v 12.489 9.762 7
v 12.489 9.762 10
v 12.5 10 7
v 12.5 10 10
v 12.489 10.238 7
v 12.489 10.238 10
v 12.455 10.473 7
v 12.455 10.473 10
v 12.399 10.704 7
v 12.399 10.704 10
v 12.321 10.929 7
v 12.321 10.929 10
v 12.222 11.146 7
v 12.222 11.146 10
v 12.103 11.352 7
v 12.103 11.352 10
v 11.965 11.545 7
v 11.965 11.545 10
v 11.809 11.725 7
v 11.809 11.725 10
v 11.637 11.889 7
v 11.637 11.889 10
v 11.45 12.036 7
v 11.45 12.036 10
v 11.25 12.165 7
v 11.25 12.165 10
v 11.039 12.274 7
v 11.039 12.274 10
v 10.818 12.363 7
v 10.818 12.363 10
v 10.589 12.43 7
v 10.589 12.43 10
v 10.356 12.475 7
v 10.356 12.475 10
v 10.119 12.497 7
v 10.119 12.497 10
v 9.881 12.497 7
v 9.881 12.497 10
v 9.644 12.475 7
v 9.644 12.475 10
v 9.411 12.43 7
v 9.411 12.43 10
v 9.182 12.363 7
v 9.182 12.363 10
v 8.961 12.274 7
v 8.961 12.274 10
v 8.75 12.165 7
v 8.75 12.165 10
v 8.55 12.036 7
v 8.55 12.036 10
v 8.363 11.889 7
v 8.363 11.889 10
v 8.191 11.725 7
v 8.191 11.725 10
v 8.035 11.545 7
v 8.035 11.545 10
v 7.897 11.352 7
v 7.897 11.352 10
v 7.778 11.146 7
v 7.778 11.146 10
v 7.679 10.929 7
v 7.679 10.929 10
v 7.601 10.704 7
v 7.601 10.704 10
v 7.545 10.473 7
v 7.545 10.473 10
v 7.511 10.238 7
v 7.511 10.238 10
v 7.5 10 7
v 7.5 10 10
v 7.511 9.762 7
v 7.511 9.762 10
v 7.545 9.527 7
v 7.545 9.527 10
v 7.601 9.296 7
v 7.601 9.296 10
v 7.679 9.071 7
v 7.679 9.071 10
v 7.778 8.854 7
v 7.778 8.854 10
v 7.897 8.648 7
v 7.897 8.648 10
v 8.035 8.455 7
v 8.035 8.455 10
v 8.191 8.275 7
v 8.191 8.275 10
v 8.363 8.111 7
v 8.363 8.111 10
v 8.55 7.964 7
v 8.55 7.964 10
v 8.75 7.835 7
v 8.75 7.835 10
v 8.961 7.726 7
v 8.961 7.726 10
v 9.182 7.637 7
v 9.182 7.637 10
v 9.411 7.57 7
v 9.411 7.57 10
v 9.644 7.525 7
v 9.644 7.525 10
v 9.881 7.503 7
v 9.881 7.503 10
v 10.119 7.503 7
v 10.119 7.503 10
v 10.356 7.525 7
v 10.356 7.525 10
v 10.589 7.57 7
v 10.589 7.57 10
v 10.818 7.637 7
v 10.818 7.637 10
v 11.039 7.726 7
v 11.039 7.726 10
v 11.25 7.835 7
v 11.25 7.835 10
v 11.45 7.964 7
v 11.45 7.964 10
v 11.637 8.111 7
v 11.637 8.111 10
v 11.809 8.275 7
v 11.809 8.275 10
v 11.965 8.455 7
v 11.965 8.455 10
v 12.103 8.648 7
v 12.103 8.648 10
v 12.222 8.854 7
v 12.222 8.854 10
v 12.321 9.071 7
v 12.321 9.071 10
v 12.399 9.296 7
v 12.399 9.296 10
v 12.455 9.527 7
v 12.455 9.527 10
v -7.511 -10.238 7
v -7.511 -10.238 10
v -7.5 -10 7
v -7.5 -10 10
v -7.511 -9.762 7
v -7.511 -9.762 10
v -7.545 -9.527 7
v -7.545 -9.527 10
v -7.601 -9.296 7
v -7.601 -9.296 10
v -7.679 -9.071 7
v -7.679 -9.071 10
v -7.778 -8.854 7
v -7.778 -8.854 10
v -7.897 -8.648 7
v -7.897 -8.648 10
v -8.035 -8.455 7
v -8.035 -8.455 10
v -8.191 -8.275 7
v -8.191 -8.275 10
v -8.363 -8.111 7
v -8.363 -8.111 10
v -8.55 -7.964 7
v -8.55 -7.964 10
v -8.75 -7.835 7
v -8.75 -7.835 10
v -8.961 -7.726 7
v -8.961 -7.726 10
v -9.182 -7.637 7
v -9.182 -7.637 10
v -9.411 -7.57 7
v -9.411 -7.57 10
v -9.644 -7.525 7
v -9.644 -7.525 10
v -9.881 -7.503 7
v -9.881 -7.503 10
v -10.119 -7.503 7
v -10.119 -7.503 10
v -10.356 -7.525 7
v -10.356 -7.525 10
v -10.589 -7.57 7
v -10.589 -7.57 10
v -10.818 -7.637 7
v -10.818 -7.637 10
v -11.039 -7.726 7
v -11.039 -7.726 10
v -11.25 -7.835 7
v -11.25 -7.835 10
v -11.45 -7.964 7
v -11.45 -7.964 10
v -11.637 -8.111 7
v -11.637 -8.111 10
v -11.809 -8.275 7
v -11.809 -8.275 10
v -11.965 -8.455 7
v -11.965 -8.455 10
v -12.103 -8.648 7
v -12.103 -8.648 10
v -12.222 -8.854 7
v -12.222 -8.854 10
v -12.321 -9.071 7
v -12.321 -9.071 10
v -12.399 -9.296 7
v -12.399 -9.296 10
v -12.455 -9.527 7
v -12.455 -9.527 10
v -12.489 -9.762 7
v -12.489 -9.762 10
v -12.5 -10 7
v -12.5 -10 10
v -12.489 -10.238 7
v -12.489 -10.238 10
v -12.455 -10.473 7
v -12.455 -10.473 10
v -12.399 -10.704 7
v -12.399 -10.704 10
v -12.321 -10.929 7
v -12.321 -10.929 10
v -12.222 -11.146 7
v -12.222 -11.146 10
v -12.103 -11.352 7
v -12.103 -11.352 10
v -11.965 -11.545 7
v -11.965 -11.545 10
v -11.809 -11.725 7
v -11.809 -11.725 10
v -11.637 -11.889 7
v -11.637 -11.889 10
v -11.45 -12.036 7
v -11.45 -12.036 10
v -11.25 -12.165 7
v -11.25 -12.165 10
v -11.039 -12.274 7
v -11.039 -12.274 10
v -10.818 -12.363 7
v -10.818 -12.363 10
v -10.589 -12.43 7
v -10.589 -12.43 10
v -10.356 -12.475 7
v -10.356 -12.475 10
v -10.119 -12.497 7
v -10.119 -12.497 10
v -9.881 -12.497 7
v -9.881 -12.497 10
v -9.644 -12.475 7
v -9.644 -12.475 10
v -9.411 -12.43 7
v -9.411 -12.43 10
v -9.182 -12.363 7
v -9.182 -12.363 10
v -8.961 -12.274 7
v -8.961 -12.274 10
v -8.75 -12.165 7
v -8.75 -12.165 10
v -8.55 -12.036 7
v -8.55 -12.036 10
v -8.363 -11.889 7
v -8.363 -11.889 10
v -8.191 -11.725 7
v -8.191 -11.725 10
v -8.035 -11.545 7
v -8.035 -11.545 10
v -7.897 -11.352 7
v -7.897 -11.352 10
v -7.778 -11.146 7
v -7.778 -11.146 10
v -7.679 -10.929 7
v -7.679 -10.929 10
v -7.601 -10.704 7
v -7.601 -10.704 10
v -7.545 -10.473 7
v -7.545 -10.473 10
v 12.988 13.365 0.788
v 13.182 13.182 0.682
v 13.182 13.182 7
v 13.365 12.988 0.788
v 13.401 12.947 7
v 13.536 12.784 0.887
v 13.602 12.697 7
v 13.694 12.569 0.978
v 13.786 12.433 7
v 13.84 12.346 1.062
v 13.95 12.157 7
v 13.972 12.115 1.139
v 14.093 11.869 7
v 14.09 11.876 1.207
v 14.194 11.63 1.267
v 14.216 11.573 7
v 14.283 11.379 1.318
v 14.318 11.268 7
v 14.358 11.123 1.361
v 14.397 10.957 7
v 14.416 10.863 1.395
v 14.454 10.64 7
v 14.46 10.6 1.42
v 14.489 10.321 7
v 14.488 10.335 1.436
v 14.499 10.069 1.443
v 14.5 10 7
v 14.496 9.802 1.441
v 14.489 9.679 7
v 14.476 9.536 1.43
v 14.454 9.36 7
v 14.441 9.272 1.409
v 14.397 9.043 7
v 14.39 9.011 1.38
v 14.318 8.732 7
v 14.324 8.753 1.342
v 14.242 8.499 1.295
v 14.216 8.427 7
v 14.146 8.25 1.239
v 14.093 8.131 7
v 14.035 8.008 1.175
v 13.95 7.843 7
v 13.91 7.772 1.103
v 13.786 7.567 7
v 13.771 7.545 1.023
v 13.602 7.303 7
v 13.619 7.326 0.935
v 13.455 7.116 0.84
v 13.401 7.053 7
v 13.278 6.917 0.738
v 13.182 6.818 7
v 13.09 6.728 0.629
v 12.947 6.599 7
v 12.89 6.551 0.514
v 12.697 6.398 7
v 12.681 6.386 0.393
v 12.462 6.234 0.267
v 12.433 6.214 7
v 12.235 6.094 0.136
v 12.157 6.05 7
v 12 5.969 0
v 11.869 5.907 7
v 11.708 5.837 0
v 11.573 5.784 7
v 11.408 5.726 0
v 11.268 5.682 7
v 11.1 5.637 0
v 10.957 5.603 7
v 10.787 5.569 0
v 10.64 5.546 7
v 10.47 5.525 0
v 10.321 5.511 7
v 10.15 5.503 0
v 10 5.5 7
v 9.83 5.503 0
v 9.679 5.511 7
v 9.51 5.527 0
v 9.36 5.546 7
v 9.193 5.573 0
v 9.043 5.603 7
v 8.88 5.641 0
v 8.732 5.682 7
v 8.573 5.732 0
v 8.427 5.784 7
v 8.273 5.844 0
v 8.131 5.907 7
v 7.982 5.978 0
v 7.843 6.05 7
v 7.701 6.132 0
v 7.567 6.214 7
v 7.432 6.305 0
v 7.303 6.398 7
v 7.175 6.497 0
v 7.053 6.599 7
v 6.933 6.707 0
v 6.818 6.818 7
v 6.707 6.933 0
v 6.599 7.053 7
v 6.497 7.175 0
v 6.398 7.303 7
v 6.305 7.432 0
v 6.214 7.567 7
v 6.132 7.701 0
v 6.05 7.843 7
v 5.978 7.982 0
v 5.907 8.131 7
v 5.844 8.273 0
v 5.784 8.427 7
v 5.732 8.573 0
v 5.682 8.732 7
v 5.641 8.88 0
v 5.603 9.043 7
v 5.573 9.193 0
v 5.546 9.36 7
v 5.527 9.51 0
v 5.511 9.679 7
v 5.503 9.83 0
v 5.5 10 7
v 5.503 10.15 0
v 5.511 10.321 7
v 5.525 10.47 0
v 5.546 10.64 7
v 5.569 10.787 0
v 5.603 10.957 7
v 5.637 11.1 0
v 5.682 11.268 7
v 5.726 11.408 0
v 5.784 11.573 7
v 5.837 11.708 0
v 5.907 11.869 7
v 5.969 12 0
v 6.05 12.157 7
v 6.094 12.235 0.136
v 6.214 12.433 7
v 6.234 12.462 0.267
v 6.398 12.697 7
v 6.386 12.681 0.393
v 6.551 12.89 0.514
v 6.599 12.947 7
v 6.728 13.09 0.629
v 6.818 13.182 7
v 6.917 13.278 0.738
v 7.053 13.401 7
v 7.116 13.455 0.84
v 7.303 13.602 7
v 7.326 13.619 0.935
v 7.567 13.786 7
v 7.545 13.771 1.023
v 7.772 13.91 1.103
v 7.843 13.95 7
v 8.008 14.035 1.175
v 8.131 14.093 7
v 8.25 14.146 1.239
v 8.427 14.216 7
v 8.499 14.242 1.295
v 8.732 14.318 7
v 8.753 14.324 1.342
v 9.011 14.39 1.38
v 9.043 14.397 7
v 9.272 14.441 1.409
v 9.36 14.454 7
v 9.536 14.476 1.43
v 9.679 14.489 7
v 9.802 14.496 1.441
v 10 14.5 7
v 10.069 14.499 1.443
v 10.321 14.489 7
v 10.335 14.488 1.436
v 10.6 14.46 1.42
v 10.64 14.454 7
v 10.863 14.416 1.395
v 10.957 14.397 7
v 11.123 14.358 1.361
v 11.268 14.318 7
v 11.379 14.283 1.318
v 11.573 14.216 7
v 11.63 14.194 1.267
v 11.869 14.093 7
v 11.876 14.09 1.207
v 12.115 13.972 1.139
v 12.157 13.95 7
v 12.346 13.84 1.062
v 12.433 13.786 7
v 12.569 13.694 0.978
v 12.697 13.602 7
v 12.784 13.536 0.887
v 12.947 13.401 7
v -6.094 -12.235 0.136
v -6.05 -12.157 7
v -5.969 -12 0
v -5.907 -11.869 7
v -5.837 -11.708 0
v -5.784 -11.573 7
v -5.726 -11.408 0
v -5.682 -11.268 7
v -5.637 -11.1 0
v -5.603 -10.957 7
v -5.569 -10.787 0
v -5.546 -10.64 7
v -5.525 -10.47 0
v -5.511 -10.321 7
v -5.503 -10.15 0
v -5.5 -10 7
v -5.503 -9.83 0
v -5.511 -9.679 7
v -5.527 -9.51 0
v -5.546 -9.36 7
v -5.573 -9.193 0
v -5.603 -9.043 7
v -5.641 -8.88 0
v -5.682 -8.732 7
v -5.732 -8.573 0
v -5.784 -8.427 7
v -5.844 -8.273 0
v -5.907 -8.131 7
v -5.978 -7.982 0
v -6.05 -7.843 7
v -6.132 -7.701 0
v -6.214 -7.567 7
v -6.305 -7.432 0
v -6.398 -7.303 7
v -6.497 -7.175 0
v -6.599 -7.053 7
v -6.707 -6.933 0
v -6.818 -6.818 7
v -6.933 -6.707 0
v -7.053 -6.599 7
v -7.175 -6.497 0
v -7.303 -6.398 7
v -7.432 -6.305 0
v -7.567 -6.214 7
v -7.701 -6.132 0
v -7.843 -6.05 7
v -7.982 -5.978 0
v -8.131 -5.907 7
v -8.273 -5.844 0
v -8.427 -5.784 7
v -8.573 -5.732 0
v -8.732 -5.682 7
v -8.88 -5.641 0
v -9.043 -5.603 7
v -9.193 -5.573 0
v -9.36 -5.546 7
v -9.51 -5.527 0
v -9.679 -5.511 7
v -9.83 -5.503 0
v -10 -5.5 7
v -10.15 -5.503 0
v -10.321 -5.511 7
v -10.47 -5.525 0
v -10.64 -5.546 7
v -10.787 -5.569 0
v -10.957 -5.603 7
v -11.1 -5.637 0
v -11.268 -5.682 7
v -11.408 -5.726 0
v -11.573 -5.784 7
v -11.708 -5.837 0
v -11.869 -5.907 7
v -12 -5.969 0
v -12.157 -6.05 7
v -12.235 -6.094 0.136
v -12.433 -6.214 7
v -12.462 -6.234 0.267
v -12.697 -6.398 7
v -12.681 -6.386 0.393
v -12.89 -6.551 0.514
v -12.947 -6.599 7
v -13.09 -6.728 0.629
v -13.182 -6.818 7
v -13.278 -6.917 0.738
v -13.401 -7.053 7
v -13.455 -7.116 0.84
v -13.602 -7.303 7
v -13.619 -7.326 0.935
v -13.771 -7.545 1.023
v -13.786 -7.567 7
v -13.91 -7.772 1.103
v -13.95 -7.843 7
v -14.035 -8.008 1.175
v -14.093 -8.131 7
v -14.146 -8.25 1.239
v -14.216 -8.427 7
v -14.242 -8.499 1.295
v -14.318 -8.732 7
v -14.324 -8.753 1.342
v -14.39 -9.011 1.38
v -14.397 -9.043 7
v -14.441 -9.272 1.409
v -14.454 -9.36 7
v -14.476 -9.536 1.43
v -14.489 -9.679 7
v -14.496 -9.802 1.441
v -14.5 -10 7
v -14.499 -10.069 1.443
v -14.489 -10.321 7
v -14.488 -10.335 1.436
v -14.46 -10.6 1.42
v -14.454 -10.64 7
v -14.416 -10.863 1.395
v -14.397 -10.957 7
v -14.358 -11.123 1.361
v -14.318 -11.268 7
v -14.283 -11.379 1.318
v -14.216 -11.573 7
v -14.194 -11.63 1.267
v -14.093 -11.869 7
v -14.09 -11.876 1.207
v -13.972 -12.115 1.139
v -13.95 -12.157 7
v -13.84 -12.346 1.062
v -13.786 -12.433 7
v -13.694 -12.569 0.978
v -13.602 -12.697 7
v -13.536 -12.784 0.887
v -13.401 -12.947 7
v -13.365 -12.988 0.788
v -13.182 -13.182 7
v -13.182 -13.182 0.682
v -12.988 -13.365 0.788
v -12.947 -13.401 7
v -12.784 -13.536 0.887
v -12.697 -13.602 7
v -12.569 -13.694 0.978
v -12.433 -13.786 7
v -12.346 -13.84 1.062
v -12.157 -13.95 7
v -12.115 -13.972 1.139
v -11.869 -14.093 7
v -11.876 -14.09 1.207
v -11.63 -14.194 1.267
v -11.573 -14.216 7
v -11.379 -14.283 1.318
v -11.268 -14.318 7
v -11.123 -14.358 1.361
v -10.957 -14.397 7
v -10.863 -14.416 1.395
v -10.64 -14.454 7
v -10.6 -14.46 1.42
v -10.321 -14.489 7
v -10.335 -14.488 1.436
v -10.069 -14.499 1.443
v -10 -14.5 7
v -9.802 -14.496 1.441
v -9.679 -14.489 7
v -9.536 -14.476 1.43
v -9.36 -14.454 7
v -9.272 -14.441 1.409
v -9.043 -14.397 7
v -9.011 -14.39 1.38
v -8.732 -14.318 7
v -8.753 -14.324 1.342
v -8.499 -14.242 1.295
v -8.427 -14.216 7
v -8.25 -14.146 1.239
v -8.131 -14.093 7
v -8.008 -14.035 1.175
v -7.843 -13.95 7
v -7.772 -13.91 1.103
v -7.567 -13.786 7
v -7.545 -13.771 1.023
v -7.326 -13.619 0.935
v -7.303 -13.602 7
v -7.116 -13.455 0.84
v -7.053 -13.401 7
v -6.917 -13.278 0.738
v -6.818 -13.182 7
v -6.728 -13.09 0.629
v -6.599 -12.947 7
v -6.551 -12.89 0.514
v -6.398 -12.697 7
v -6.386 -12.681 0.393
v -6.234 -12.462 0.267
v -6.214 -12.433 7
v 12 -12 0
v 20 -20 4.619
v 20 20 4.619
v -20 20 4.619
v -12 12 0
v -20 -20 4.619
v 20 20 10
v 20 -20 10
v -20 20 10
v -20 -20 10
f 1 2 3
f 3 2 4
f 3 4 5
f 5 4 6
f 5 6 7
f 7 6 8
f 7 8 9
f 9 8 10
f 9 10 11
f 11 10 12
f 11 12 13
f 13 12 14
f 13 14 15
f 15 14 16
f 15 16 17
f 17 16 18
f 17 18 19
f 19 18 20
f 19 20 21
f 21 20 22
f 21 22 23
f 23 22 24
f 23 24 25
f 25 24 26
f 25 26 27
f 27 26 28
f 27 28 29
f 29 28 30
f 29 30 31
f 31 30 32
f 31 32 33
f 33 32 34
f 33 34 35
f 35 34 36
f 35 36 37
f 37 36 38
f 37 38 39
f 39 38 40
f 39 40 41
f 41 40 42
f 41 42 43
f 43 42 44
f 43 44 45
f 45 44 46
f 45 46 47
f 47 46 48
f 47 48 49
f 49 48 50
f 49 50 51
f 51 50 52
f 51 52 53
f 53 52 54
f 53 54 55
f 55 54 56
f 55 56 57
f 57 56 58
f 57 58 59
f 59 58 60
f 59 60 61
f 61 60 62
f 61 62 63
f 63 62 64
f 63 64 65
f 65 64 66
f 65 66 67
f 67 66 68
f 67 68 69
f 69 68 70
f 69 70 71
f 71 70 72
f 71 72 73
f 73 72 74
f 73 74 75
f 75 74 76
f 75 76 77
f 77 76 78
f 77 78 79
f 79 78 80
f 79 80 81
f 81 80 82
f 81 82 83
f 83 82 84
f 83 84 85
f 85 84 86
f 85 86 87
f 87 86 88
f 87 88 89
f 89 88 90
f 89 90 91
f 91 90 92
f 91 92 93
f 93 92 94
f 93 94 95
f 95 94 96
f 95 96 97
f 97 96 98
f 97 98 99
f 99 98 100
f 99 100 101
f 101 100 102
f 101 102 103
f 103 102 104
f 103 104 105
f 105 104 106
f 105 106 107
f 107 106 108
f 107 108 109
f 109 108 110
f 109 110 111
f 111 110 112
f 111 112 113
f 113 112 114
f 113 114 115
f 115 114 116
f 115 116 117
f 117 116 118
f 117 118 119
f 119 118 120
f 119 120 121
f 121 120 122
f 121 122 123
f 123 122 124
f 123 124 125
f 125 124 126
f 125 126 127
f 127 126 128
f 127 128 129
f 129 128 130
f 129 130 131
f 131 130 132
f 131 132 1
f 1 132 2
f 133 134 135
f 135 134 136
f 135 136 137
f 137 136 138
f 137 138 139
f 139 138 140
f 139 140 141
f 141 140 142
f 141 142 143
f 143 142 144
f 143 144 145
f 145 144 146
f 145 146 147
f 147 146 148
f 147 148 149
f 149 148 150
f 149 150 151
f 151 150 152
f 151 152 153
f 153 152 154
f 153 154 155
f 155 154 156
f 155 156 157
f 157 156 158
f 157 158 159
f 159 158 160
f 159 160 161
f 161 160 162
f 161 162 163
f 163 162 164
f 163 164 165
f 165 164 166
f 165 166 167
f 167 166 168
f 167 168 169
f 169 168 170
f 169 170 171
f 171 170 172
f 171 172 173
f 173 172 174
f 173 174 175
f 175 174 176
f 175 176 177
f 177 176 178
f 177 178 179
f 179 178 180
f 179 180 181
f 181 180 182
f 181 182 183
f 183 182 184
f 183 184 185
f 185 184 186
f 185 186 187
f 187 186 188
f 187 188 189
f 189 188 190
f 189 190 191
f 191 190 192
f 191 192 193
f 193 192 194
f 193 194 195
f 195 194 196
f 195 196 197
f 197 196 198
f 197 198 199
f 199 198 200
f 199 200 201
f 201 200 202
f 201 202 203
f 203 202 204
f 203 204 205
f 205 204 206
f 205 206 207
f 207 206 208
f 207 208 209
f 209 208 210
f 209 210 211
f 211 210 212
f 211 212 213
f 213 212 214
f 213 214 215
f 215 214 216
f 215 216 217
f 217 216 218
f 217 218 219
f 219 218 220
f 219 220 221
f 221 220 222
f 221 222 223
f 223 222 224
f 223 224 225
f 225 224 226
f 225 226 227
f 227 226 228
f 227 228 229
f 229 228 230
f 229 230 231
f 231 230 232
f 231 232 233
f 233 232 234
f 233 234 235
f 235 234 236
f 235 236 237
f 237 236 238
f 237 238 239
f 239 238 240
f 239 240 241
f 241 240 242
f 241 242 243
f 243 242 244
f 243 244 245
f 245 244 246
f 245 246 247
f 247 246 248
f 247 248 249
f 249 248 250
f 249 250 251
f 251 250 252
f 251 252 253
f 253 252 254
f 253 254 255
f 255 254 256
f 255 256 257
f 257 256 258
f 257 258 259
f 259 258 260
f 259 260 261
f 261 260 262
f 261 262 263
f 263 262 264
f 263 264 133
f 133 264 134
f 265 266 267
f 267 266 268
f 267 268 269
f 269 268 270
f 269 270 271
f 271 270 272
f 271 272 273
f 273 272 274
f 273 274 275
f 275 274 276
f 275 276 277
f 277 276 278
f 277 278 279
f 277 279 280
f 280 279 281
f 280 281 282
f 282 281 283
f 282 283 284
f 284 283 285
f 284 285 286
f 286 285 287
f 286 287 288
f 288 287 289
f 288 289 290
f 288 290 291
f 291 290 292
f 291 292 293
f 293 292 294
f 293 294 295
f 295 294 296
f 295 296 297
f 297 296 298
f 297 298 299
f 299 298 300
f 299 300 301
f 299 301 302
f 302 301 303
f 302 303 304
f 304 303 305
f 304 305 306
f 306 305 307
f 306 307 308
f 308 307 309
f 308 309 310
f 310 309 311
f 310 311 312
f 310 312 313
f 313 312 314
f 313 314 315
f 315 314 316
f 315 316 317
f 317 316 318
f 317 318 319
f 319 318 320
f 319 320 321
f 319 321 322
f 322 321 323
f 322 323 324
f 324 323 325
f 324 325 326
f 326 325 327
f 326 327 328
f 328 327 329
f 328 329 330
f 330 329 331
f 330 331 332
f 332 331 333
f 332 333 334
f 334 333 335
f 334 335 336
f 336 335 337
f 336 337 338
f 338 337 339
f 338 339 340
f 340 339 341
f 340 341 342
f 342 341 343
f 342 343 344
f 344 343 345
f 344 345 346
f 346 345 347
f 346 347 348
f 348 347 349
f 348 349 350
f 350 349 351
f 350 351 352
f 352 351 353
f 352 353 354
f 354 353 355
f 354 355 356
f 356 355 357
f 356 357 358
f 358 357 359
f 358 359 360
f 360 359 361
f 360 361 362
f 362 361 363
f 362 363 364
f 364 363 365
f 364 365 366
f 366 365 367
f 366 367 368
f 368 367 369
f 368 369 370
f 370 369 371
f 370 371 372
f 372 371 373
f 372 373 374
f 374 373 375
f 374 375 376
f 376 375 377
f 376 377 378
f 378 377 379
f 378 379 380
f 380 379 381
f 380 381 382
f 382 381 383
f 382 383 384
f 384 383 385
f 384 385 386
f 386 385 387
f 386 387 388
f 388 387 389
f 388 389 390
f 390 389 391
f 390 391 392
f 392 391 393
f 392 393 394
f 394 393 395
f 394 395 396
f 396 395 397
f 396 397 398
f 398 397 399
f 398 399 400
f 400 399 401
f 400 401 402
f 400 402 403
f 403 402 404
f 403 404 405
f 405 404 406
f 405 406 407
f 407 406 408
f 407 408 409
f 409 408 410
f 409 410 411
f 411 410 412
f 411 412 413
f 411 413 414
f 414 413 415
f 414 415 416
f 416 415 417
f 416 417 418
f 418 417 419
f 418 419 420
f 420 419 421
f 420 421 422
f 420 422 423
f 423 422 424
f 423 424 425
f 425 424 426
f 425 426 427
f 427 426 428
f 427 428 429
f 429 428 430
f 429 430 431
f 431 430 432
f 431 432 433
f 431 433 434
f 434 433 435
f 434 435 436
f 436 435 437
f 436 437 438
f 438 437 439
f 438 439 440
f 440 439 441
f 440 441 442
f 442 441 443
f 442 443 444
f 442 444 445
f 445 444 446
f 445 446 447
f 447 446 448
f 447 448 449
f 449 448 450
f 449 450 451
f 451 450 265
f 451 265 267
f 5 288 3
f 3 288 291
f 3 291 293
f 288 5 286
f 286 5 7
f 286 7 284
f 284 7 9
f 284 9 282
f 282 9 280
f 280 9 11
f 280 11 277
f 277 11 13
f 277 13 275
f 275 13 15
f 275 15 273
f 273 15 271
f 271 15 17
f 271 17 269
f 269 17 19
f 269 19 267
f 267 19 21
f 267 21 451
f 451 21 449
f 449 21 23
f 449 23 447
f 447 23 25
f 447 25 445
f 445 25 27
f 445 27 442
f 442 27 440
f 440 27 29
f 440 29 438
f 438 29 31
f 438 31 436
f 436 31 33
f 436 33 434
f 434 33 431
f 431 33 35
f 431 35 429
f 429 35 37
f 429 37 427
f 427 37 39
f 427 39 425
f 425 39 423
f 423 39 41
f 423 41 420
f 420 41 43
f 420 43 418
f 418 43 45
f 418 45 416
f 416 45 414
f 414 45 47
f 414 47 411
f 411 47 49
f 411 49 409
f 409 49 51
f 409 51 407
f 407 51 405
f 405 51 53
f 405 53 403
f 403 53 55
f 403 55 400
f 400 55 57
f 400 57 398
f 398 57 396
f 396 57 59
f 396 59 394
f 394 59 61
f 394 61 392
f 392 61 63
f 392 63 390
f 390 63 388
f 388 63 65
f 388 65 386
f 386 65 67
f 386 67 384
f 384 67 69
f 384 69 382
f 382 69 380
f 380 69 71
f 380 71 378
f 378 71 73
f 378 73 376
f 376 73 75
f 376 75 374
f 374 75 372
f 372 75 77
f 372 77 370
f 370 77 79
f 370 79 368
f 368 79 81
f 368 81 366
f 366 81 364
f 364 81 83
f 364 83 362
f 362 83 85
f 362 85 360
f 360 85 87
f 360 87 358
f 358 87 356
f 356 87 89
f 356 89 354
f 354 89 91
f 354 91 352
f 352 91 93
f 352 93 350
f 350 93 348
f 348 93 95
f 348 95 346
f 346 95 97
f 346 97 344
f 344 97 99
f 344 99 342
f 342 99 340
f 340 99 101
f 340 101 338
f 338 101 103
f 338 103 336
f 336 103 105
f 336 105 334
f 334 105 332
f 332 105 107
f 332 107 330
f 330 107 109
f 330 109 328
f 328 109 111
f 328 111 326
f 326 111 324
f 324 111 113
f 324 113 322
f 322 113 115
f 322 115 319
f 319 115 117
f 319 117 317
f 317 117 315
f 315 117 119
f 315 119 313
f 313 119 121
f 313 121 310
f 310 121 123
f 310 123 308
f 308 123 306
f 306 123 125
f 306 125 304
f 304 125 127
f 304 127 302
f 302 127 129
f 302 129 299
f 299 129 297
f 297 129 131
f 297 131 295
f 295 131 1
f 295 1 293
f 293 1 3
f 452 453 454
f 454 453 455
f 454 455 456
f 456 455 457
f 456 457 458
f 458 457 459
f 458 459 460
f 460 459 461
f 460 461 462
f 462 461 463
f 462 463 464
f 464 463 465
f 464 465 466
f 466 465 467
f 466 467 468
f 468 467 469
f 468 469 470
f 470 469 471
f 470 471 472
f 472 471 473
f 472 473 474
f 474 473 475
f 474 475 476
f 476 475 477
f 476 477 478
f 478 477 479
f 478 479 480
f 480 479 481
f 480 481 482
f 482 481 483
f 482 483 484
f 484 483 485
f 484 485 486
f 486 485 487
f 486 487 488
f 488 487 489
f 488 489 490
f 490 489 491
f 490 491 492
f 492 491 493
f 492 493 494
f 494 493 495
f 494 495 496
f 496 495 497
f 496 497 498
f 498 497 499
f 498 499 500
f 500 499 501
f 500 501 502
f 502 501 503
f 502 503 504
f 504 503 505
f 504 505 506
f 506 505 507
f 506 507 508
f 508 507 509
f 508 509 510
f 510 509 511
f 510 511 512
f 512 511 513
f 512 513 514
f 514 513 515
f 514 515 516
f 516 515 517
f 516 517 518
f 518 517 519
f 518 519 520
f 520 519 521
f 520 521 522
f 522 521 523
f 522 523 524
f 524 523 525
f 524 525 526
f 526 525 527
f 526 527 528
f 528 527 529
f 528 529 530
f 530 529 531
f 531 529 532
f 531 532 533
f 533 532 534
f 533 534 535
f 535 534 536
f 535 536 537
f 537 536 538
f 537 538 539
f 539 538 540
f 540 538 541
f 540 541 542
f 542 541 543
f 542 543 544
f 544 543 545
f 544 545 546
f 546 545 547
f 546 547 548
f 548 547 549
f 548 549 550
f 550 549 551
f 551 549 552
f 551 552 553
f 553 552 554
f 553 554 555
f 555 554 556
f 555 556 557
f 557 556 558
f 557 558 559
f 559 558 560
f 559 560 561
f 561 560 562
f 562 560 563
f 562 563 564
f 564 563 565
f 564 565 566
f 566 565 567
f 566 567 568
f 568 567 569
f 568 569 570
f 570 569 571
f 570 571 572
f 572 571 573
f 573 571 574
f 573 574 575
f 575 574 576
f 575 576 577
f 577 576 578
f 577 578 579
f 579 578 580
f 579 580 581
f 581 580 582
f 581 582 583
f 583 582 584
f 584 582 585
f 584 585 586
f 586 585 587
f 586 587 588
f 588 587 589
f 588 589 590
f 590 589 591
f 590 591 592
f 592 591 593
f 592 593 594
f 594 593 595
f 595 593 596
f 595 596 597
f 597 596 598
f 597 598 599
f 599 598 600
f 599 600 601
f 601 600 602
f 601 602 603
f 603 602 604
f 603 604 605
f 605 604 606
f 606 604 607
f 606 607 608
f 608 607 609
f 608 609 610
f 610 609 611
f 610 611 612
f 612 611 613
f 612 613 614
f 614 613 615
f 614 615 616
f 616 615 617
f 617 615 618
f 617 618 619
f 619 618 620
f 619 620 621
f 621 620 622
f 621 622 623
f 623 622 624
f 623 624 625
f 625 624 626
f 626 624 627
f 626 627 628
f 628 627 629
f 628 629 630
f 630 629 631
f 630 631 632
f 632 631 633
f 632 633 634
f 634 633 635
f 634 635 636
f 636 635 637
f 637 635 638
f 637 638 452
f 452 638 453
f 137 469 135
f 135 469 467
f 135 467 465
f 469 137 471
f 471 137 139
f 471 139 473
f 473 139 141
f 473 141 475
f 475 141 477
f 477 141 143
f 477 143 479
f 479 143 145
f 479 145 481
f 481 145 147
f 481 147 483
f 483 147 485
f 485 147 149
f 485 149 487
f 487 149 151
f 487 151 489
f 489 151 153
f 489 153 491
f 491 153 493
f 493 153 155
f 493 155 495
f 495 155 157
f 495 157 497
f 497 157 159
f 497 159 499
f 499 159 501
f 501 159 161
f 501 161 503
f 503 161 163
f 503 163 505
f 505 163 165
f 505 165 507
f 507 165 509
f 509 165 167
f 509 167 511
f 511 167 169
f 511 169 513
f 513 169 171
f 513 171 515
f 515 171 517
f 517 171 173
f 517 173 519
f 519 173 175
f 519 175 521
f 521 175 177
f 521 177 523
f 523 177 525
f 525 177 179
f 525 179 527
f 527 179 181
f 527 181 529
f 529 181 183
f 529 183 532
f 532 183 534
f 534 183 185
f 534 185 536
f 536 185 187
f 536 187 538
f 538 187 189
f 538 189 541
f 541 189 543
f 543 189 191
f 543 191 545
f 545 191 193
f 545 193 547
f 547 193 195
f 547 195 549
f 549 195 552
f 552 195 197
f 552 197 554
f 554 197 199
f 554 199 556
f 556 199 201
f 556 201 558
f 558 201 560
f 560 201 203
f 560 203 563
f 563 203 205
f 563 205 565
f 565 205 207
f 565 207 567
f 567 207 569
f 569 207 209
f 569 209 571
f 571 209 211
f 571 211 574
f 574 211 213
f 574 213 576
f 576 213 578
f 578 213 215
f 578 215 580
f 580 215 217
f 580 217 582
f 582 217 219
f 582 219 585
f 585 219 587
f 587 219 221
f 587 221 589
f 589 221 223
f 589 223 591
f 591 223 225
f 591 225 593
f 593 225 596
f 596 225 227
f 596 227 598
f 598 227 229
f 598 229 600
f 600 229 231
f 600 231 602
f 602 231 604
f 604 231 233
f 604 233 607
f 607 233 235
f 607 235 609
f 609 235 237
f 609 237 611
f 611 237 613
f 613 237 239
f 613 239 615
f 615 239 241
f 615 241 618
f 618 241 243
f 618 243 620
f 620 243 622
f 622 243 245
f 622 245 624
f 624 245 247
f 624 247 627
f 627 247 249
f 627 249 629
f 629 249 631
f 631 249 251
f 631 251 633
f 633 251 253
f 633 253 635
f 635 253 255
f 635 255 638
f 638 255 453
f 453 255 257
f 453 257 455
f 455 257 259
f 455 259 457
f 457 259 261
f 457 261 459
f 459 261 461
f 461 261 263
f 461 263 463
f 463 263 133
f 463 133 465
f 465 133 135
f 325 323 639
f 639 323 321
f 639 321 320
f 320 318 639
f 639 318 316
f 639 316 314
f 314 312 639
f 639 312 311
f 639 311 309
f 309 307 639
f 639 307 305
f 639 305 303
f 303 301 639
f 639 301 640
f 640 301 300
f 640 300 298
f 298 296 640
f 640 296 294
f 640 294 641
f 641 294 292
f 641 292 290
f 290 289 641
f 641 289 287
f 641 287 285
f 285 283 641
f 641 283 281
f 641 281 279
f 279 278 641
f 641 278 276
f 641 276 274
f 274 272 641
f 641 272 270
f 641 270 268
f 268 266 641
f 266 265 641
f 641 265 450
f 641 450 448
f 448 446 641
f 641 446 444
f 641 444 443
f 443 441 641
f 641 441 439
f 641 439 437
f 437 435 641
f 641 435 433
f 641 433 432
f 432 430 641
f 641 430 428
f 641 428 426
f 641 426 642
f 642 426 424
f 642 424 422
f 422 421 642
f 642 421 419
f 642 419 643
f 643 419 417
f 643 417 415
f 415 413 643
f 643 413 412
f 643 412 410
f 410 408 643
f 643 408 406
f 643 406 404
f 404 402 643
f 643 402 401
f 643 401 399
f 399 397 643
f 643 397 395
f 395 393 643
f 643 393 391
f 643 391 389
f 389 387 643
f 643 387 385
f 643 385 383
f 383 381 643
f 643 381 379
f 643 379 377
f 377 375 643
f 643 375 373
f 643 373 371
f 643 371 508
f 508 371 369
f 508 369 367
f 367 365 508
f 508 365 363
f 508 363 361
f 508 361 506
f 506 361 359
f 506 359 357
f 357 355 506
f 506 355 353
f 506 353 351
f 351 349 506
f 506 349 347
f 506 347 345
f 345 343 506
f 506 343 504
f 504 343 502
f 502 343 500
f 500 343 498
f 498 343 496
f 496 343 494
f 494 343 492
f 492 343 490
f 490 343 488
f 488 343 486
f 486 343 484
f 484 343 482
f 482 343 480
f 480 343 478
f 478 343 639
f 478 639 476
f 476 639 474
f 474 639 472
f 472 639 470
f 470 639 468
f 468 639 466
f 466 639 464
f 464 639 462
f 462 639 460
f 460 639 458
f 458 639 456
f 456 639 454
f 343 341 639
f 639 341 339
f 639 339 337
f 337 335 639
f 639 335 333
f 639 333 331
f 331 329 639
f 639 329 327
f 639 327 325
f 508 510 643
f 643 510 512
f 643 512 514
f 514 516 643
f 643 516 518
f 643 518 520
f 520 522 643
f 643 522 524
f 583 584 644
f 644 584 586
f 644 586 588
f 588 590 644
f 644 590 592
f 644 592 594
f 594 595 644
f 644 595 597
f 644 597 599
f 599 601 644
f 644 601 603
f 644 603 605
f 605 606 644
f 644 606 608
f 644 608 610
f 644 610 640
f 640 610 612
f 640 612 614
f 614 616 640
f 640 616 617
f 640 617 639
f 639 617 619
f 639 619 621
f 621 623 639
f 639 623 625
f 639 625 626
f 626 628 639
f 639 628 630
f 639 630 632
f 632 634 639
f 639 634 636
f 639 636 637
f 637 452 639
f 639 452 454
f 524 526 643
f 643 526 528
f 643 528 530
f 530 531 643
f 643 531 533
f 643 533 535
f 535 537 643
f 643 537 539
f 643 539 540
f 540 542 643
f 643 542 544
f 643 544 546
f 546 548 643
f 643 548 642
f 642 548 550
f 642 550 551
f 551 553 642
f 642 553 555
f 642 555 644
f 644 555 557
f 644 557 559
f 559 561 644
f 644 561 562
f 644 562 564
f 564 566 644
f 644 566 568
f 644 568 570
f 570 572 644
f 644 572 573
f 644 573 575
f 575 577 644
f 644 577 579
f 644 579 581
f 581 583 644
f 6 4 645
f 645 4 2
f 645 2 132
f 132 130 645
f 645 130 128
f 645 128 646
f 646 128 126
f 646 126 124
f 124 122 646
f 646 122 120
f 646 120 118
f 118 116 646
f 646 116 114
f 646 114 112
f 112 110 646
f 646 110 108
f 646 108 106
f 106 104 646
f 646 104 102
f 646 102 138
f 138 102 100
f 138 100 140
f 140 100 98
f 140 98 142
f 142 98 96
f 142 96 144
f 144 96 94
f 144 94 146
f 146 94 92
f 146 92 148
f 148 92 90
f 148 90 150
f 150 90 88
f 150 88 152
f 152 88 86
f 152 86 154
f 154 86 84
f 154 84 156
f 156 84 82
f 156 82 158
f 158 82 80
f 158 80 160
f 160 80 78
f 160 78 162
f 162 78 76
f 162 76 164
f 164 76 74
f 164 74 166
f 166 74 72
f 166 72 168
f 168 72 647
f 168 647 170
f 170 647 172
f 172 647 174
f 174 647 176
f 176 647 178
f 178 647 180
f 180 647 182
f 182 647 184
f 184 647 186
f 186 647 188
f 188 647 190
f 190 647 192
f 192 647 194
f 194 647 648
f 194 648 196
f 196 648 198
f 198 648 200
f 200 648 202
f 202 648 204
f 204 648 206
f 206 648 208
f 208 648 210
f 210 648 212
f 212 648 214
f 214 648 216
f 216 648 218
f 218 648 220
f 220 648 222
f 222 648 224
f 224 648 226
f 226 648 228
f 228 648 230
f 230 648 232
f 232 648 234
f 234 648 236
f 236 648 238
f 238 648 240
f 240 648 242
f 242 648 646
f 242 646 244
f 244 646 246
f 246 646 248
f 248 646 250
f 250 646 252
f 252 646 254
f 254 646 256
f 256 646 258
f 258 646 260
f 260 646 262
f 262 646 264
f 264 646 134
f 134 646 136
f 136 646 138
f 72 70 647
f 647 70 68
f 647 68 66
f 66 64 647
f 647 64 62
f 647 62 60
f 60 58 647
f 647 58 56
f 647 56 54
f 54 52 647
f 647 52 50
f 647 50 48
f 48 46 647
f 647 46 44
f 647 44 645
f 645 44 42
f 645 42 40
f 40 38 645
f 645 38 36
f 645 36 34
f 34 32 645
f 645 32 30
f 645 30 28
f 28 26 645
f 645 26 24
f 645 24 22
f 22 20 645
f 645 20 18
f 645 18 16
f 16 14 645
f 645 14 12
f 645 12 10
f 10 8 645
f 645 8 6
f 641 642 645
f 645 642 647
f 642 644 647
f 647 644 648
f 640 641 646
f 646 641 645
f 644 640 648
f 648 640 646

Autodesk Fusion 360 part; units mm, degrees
sketch "Sketch1" plane through (0, 0, 0) normal (0, 0, 1) x (1, 0, 0)
  line L0 (20, -20) -> (-20, -20)
  line L1 (-20, -20) -> (-20, 20)
  line L2 (-20, 20) -> (20, 20)
  line L3 (20, 20) -> (20, -20)
  line L4 (20, -20) -> (-20, 20) construction
  line L5 (-20, -20) -> (20, 20) construction
  dimension "d1" = 40
  dimension "d2" = 40
extrude "Extrude1" add sketch "Sketch1" along normal blind 5
chamfer "Chamfer1" distance 8 angle 30 4 edges at (20, 0, 0) (0, -20, 0) (-20, 0, 0) (0, 20, 0) measured on face at (6.6667, -6.6667, 0) measured on face at (6.6667, -6.6667, 0) measured on face at (6.6667, -6.6667, 0) measured on face at (6.6667, -6.6667, 0)
extrude "Extrude2" add 1 faces at (6.6667, -6.6667, 5) along direction (0, 0, 1) blind 5
sketch "Sketch2" plane through (0, 0, 10) normal (0, 0, 1) x (-1, 0, 0)
  line L0 (-20, -20) -> (20, -20)
  line L1 (20, -20) -> (20, 20)
  line L2 (20, 20) -> (-20, 20)
  line L3 (-20, 20) -> (-20, -20)
  circle A0 centre (10, 10) radius 2.5
  circle A1 centre (-10, -10) radius 2.5
  circle A2 centre (10, 10) radius 4.5
  circle A3 centre (-10, -10) radius 4.5
  dimension "d11" = 5
  dimension "d12" = 5
  dimension "d15" = 9
  dimension "d16" = 9
  dimension "d20" = 10
  dimension "d21" = 10
  dimension "d22" = 10
  dimension "d23" = 10
extrude "Extrude4" cut sketch "Sketch2" along normal blind 7 from surface at -10 contours A2 | A3
extrude "Extrude3" cut sketch "Sketch2" against normal up to surface (10 mm away) contours A0 | A1
